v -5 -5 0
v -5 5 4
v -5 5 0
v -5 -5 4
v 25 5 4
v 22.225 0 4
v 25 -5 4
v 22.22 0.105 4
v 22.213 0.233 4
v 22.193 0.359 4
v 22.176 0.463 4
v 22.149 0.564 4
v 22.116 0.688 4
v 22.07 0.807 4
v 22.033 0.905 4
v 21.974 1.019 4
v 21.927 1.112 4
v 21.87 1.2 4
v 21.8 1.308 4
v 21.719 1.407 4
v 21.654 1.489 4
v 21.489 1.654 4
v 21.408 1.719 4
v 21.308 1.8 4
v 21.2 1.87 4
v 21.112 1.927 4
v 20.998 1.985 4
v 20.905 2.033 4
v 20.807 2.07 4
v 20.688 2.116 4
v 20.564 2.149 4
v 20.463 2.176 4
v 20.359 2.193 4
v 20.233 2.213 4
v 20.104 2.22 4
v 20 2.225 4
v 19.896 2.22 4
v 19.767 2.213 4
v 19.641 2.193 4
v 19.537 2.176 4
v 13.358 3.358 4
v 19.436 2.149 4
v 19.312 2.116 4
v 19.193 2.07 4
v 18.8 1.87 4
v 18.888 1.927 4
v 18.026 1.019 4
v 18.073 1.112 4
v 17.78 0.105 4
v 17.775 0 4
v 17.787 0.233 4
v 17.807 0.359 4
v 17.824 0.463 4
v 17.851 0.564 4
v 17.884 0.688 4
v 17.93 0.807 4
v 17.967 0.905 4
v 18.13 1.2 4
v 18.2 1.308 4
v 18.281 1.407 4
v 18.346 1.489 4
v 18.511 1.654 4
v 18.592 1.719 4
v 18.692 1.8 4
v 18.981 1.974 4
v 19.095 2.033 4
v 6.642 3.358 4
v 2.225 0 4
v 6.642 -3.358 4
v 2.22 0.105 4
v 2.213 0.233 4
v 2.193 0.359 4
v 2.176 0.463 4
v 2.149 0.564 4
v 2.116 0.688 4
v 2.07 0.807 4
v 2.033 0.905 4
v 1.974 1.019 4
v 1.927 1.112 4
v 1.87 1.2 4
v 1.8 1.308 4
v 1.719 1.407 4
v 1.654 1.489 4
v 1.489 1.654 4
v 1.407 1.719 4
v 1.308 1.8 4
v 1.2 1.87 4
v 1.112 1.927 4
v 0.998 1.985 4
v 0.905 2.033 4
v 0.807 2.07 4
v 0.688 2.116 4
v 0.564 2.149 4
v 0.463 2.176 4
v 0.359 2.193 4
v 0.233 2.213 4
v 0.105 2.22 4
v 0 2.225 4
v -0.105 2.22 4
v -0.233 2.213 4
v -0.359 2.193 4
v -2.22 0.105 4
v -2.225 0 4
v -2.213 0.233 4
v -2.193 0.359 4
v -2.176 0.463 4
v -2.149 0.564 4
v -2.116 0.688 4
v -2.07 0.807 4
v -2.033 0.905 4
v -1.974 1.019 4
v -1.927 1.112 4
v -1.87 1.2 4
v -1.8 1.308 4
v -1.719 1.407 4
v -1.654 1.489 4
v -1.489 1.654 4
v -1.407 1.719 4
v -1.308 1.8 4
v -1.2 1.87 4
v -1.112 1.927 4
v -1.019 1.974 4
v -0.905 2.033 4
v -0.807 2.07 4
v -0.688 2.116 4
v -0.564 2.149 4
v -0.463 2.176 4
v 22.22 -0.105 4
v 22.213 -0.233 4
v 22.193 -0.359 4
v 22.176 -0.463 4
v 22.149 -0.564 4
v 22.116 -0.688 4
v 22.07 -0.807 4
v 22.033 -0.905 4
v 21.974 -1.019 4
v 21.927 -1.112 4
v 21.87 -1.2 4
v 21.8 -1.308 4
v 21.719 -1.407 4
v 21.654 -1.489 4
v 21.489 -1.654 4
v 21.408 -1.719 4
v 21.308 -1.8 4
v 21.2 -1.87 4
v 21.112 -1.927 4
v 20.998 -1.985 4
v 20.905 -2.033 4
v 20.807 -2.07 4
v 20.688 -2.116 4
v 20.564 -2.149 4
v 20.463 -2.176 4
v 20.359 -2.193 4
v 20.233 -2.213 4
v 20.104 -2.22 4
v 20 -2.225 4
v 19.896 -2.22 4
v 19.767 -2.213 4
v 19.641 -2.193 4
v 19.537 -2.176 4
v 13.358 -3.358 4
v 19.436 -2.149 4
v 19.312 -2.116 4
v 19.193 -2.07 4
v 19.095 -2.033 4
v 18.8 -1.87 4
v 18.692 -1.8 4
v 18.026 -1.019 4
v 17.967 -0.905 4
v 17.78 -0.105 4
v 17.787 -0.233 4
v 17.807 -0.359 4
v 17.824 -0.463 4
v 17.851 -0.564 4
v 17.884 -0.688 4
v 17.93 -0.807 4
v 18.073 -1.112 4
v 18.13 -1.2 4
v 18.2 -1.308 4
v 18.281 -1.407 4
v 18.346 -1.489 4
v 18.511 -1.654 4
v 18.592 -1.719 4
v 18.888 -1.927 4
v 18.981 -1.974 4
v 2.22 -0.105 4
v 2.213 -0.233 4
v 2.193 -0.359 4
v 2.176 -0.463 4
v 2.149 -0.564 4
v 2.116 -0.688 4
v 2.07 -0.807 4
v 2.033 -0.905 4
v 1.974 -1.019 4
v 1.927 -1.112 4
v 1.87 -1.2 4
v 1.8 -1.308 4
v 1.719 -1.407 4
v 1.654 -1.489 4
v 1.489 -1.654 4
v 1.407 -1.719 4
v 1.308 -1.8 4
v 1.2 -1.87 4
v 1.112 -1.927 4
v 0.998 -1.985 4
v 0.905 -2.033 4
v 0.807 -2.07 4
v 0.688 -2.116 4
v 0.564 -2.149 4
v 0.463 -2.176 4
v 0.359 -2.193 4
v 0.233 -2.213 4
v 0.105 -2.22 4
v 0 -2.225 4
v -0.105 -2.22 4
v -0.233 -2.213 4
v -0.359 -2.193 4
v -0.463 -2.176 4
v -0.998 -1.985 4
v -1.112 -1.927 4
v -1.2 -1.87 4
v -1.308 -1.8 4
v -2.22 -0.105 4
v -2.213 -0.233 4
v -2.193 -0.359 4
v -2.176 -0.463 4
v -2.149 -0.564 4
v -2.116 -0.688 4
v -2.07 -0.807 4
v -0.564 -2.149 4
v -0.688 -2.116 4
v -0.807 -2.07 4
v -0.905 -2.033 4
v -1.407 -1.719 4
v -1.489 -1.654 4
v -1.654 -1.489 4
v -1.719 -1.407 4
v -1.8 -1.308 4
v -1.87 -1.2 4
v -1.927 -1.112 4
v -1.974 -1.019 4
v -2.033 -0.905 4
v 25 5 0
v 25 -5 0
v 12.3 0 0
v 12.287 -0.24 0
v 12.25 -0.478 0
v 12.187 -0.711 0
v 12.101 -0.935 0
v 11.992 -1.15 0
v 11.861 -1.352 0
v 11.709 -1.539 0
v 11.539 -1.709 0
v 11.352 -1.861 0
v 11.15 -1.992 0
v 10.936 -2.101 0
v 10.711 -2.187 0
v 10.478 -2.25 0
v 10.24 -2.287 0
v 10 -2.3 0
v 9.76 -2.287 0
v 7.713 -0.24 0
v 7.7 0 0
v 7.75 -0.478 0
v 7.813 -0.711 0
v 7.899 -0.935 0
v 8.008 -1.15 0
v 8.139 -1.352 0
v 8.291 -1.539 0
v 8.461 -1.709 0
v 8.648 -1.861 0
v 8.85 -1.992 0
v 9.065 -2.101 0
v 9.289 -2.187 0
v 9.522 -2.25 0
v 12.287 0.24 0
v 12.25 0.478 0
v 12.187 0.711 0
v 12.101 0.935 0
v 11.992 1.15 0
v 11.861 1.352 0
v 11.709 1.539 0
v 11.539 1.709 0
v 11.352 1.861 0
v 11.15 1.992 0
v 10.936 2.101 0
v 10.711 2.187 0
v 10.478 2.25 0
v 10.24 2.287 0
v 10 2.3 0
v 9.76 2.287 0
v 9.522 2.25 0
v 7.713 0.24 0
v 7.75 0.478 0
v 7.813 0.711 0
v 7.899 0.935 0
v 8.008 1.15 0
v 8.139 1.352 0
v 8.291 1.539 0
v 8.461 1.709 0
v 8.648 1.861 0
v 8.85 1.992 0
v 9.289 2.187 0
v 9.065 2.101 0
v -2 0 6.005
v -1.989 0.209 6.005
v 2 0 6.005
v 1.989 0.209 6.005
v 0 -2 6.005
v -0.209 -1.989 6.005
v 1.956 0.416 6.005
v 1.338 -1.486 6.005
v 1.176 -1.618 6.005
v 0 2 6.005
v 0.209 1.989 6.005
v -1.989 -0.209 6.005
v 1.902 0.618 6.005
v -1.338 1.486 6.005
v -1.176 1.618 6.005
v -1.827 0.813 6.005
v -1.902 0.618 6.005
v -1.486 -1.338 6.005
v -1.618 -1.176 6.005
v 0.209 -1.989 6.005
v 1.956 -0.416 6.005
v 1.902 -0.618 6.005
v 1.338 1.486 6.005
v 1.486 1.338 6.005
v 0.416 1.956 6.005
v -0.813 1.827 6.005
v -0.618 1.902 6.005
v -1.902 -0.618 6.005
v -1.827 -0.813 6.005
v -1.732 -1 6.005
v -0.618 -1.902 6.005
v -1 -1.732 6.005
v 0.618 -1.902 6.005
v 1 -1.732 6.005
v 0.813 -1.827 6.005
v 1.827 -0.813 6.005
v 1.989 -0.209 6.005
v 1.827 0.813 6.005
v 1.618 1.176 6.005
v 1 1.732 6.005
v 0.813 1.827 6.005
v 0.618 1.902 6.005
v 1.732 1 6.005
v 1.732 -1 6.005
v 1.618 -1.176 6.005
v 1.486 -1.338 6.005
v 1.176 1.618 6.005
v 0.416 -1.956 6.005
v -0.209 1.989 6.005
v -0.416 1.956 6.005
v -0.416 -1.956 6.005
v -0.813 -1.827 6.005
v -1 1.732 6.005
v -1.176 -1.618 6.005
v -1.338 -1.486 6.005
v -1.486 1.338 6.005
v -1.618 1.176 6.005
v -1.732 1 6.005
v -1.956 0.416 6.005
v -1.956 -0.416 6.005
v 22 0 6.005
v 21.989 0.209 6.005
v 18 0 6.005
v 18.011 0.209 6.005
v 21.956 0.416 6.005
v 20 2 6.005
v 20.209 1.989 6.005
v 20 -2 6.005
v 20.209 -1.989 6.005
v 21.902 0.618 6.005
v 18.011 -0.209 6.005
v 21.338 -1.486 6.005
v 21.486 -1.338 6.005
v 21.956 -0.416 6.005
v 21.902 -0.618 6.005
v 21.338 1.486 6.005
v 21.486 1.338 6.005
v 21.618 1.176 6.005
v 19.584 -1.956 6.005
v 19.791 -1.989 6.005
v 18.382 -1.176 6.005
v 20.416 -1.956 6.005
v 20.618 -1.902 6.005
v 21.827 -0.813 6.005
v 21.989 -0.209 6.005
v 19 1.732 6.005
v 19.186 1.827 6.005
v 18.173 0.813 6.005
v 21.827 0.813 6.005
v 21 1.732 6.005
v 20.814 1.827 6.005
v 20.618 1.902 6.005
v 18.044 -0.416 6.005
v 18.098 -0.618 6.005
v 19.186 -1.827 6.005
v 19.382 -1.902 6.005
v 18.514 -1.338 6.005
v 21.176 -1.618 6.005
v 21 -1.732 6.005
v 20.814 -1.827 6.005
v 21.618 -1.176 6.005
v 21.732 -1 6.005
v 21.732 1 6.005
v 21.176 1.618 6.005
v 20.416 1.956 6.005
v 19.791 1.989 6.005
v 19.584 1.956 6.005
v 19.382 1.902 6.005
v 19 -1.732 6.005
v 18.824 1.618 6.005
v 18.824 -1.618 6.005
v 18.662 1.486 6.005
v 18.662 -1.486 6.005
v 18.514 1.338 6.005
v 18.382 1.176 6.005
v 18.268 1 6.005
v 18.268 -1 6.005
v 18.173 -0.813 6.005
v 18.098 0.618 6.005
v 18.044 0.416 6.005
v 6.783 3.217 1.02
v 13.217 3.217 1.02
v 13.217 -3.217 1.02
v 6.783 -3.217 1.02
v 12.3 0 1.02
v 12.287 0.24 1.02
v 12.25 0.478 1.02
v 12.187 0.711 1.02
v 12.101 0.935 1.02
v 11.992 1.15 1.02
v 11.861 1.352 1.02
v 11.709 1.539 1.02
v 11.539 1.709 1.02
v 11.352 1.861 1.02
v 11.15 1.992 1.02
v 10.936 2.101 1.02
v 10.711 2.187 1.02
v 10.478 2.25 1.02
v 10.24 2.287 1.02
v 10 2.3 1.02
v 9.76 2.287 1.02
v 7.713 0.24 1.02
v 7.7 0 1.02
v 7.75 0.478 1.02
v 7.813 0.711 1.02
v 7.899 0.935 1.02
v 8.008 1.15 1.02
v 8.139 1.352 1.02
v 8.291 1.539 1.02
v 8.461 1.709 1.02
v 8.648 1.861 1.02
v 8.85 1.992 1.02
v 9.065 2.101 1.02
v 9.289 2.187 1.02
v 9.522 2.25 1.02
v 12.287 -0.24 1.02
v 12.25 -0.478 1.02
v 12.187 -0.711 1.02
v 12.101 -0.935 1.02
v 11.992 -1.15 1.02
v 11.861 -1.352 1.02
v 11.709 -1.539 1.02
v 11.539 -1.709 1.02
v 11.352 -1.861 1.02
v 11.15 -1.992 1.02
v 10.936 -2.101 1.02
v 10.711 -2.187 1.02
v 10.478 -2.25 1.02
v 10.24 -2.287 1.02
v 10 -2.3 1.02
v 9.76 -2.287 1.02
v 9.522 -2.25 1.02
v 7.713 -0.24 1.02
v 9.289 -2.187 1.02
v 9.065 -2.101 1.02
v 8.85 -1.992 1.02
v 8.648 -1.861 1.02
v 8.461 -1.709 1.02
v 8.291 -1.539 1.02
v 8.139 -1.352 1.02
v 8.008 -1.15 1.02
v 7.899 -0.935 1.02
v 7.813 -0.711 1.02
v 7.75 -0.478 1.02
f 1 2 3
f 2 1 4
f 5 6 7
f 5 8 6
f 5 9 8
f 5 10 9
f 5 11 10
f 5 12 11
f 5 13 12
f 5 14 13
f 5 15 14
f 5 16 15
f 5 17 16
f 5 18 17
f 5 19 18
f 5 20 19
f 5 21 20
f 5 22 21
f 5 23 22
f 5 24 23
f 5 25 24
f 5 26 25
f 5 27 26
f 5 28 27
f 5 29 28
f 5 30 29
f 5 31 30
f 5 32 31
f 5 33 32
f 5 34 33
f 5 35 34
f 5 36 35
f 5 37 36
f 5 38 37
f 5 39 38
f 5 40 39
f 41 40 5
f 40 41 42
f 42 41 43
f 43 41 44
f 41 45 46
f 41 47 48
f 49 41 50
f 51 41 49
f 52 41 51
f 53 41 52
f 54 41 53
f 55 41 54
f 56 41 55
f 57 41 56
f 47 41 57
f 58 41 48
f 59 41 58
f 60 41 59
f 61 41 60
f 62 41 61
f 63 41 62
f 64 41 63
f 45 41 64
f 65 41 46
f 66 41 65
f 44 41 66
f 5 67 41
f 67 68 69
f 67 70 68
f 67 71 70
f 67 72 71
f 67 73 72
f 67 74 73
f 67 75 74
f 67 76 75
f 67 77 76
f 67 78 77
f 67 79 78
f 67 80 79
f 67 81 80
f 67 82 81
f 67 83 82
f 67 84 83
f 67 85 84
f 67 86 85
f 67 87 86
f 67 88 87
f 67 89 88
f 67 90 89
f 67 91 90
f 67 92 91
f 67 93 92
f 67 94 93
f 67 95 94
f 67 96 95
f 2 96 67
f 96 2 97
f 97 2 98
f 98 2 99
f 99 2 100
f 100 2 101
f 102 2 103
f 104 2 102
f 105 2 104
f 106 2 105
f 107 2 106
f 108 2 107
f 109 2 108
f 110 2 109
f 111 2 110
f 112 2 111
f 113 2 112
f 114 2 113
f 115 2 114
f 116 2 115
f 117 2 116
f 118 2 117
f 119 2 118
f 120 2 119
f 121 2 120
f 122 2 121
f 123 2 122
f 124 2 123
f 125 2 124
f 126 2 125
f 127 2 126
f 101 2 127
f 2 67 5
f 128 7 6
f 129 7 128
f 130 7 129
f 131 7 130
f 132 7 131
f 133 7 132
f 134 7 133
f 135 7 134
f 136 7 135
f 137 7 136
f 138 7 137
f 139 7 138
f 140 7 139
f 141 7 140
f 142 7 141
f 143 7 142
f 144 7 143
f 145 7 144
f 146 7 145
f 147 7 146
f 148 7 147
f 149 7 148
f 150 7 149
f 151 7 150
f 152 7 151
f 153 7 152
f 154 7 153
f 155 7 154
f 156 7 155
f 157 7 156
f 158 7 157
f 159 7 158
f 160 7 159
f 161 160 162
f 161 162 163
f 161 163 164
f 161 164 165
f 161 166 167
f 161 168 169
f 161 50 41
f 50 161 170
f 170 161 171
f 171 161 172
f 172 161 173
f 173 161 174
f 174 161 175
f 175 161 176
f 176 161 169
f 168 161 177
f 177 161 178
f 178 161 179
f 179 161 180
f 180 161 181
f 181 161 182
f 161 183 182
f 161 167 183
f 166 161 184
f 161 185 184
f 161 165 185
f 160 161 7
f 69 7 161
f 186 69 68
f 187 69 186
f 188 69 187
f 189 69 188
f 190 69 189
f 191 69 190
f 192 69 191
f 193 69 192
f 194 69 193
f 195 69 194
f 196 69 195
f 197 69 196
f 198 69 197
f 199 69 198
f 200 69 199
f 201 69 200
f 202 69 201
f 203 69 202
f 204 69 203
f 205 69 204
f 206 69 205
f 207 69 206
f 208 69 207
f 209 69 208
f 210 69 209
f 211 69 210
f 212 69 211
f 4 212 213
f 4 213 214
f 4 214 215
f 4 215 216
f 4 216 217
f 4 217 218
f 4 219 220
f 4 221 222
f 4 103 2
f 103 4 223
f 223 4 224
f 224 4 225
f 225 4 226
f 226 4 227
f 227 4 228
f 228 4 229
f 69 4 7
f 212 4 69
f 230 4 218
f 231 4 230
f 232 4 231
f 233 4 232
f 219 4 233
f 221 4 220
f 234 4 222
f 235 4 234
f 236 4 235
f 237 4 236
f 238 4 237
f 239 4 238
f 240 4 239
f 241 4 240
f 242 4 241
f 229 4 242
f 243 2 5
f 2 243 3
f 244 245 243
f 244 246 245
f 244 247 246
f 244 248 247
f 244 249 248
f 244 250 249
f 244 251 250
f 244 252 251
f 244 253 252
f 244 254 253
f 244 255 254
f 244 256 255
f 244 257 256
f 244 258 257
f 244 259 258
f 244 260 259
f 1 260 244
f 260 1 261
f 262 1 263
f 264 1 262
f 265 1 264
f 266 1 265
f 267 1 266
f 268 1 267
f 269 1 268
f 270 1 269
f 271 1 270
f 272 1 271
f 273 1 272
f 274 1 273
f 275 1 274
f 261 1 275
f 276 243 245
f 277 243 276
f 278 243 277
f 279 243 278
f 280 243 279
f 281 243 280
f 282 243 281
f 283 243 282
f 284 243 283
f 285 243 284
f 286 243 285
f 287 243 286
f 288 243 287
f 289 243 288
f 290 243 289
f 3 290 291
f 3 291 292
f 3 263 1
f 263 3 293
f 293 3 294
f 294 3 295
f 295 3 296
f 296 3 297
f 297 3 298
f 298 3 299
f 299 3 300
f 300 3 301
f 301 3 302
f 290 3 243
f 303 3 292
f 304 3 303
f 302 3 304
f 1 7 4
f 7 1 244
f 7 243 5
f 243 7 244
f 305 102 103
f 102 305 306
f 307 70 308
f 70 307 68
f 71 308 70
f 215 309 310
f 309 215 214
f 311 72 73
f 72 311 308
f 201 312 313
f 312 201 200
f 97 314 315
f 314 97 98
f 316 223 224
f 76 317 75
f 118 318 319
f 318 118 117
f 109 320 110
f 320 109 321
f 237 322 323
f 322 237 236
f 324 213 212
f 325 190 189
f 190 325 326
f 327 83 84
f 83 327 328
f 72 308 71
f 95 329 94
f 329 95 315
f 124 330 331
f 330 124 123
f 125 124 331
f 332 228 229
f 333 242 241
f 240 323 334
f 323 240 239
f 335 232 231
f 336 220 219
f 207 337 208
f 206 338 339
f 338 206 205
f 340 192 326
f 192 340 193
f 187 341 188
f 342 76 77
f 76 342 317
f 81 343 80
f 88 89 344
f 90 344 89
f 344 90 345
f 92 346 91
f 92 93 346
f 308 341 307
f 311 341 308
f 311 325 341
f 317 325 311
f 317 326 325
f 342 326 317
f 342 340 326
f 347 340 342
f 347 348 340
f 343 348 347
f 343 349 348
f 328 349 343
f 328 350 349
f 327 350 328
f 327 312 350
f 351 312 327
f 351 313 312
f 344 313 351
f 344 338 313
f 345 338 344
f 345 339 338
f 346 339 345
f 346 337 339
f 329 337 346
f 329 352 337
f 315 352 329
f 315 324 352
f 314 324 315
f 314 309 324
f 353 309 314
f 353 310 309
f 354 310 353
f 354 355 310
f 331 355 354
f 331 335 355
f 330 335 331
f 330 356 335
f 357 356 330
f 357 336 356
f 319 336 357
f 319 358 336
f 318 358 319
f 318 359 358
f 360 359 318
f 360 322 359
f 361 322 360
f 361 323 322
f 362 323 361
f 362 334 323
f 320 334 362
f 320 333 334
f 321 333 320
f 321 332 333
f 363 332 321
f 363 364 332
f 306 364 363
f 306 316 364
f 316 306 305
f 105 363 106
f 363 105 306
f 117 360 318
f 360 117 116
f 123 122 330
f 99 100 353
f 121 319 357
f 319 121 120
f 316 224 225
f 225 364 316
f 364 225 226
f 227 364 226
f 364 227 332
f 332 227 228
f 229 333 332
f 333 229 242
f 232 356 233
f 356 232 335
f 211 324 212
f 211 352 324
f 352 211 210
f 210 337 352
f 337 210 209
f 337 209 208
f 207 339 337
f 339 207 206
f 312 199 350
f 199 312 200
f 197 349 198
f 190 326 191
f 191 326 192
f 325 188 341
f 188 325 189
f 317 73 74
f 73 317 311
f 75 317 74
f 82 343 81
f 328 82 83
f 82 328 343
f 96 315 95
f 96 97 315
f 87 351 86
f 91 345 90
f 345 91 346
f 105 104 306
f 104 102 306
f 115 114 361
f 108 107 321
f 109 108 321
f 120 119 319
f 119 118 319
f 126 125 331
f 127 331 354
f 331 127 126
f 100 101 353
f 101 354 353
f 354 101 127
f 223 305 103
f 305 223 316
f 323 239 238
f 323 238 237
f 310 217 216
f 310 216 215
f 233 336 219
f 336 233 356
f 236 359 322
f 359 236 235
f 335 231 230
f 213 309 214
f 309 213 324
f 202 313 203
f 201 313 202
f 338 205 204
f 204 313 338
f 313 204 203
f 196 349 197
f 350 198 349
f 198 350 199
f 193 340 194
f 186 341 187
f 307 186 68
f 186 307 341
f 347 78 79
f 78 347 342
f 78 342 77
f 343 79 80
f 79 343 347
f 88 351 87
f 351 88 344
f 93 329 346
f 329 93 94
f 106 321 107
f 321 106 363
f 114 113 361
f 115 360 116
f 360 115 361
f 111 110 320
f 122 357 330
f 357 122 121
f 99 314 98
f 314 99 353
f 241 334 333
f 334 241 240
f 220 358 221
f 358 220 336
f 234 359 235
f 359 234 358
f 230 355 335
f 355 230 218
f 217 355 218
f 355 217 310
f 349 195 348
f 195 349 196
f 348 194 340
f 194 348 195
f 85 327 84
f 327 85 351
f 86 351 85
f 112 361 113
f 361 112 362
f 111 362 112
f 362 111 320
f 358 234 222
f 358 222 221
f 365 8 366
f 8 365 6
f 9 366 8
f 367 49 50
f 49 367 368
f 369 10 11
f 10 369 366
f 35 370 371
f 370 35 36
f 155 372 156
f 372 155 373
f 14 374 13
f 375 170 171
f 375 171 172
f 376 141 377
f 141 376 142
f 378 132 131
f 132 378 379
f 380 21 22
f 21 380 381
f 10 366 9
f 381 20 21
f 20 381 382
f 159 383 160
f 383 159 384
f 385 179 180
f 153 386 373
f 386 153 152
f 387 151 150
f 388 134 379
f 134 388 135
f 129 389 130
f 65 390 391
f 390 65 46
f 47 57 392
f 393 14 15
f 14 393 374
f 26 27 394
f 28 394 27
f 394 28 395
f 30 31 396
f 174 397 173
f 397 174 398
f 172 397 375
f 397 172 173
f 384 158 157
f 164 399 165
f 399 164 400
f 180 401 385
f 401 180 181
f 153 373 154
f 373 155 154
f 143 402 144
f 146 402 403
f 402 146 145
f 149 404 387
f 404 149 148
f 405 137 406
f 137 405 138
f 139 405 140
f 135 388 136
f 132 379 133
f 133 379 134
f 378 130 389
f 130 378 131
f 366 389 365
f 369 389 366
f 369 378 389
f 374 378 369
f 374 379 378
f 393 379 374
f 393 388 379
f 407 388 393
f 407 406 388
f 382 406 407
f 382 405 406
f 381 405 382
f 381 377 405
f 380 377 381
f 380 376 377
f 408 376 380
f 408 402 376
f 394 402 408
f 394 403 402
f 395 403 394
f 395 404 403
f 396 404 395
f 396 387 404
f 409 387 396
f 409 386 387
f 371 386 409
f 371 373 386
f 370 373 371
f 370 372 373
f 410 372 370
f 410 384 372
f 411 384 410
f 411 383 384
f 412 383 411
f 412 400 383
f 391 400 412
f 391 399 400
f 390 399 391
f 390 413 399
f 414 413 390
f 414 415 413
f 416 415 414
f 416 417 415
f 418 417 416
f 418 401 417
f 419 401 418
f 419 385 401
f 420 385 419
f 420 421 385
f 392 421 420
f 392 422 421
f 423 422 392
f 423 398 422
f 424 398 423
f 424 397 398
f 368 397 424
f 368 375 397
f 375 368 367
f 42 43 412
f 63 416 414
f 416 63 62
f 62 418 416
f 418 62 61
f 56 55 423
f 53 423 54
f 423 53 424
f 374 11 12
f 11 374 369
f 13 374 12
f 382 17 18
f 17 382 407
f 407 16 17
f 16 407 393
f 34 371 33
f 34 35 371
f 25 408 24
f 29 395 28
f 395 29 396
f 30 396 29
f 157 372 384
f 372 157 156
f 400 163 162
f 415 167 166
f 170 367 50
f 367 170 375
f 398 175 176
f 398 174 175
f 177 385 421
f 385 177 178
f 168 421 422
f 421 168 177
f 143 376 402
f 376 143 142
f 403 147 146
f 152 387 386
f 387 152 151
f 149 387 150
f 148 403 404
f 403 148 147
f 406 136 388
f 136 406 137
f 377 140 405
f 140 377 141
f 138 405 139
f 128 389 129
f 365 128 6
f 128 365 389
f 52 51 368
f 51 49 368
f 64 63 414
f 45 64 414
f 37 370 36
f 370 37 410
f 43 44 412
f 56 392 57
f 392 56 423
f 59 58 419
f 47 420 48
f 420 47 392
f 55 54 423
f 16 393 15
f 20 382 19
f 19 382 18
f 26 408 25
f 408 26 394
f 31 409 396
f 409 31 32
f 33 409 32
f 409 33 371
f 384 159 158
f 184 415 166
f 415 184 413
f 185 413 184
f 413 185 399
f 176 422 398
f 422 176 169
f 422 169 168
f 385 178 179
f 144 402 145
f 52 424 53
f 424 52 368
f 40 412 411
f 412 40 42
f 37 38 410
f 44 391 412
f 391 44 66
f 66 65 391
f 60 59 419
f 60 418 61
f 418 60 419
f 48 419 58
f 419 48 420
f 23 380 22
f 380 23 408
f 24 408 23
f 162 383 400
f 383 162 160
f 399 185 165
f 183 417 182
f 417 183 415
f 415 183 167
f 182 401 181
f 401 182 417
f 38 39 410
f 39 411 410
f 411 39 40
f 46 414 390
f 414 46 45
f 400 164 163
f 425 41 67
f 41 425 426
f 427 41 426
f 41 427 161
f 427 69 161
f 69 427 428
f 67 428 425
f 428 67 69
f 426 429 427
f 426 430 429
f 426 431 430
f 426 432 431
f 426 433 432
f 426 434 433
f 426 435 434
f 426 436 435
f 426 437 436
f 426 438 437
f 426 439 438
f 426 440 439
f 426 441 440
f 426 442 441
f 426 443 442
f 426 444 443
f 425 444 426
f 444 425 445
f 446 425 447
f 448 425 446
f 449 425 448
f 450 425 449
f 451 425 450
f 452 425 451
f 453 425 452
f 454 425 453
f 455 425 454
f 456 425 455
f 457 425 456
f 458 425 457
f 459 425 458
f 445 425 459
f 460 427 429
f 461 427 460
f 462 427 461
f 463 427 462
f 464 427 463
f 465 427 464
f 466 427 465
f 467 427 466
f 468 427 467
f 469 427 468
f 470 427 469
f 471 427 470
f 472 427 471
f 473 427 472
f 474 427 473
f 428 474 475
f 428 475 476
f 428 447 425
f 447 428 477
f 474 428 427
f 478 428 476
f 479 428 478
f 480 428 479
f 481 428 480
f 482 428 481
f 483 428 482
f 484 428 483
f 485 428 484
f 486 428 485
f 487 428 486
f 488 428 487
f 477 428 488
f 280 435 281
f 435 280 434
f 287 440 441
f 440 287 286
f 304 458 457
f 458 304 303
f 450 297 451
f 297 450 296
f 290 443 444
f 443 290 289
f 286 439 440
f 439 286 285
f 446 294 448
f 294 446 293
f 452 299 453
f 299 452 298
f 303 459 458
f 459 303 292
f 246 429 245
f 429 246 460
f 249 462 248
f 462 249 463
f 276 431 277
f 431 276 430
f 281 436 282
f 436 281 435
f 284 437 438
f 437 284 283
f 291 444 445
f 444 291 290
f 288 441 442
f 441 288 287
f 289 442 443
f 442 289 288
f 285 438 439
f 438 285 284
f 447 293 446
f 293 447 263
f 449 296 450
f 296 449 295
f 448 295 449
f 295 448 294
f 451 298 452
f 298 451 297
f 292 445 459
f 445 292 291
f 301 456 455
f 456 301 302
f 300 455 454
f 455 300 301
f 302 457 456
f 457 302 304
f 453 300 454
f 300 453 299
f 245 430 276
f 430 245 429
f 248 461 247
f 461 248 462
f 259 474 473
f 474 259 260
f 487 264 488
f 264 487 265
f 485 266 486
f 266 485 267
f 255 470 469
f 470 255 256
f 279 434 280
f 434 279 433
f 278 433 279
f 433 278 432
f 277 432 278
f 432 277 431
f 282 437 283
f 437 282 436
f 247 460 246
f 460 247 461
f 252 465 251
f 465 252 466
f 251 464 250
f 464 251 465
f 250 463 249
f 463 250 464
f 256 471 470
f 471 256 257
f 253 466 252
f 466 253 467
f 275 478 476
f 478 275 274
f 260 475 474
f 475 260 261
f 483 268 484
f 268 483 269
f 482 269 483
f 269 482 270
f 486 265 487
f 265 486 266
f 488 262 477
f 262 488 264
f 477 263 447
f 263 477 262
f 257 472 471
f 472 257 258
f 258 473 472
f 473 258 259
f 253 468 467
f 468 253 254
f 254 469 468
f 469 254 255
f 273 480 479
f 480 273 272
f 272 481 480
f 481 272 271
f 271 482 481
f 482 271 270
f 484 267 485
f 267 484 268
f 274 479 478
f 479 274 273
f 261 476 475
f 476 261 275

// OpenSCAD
// file: lib/electric.scad
module contact_node()
{
    union(){
        node(10);
        difference(){
            translate([0,0,-5]) cube([10,10,6], center=true);
            union(){
                #translate([0,0,-8.5]) cylinder(r=3.5, h=7, $fn=32);
            }
        }
    }
}

module contact_node_cross_section(){
    intersection(){
        contact_node(10);
        translate([-20,0,0]) cube([40,40,40], center=true);
    }
}

module electric_board(count_x, count_y){
     for (i = [0:1:(count_x-1)] )
     for (j = [0:1:(count_y-1)] )
     {
         translate([i*10,j*10,0])contact_node(width);
     }
}
// file: lib/rectangular_bar.scad
include<settings.scad>
include<node.scad>

module rectangular_bar(count_x, width){
     for (i = [0:1:(count_x-1)] )
     {
         translate([0,i*width,0])node(width);
     }
}

module rectangular_bar_alternating11_0(count_x, width){
     for (i = [0:1:(count_x-1)] )
     {
         if (i%2) mirror([0,0,1]) translate([0,i*width,-thickness_total])node(width);
         else  translate([0,i*width,0])node(width);
     }
}

module rectangular_bar_alternating11_1(count_x, width){
    for (i = [0:1:(count_x-1)] )
    {
        if (i%2) translate([0,i*width,0])node(width);
        else  mirror([0,0,1]) translate([0,i*width,-thickness_total])node(width);
    }
}
// file: lib/rectangular_plate.scad
include<settings.scad>
include<node.scad>

module rectangular_plate(count_x, count_y, width){
     for (i = [0:1:(count_x-1)] )
     for (j = [0:1:(count_y-1)] )
     {
         translate([i*width,j*width,0])node(width);
     }
}

module rectangular_plate_plus(count_x, count_y, width){
     for (i = [0:1:(count_x-1)] )
     for (j = [0:1:(count_y-1)] )
     {
         translate([i*width,j*width,0])node_plus(width);
     }
}

module rectangular_plate_minus(count_x, count_y, width){
     for (i = [0:1:(count_x-1)] )
     for (j = [0:1:(count_y-1)] )
     {
         translate([i*width,j*width,0])node_minus(width);
     }
}
// file: lib/bracket.scad
include<settings.scad>
include<rectangular_plate.scad>
use<node.scad>

module bracket1(count_x, count_y, count_z, width)
{
    difference(){
    
    union(){
        rectangular_plate_plus(count_x-2, count_y, width);
        translate([-width,0,0])rotate([0,0,90])node_corner90(width);
        translate([width*(count_x-2),0,0])rotate([0,0,90])mirror([0,1,0])node_corner90(width);

        translate([-width*(count_x-2+count_z-2),0,0])rectangular_plate_plus(count_z-1, count_y, width);
        translate([count_x*width,0,0])rectangular_plate_plus(count_z-1, count_y, width);
    }
    
    union(){
        rectangular_plate_minus(count_x-2, count_y, width);
        translate([-(count_x-2+count_z-2)*width, 0, 0])  rectangular_plate_minus(count_z-1, count_y, width);
        translate([(count_x)*width, 0, 0])  rectangular_plate_minus(count_z-1, count_y, width);
    }
    
    }
}

module bracket2(count_x, count_y, count_z, width)
{
    difference(){
    
    union(){
        translate([0,0,thickness_total]) mirror([0,0,1]) rectangular_plate_plus(count_x-2, count_y, width);
        translate([-width,0,0])rotate([0,0,90])node_corner90(width);
        translate([width*(count_x-2),0,0])rotate([0,0,90])mirror([0,1,0])node_corner90(width);

        translate([-width*(count_x-2+count_z-2),0,0])rectangular_plate_plus(count_z-1, count_y, width);
        translate([count_x*width,0,0])rectangular_plate_plus(count_z-1, count_y, width);
    }
    
    union(){
        translate([0,0,thickness_total]) mirror([0,0,1])rectangular_plate_minus(count_x-2, count_y, width);
        translate([-(count_x-2+count_z-2)*width, 0, 0])  rectangular_plate_minus(count_z-1, count_y, width);
        translate([(count_x)*width, 0, 0])  rectangular_plate_minus(count_z-1, count_y, width);
    }
    
    }
}

module bracket3(count_x, count_y, count_z, width)
{
    difference(){

    union(){
        translate([0,0,thickness_total])mirror([0,0,1])rectangular_plate_plus(count_x, count_y, width);
        translate([(count_x-0.5)*width-thickness_total, 0, 0.5*width]) rotate([0,-90,0]) mirror([0,0,1])rectangular_plate_plus(count_z, count_y, width);
        translate([-0.5*width+thickness_total, 0, (count_z-0.5)*width]) rotate([0,90,0]) mirror([0,0,1])rectangular_plate_plus(count_z, count_y, width);
    }

    union(){
        translate([width,0,thickness_total])mirror([0,0,1])rectangular_plate_minus(count_x-2, count_y, width);
        rectangular_plate_minus(1, count_y, width);
        translate([width*(count_x-1),0,0])rectangular_plate_minus(1, count_y, width);

        translate([(count_x-0.5)*width, 0, 0.5*width]) rotate([0,-90,0]) rectangular_plate_minus(1, count_y, width);  
        translate([(count_x-0.5)*width-thickness_total, 0, 1.5*width]) rotate([0,-90,0]) mirror([0,0,1])rectangular_plate_minus(count_z-1, count_y, width);

        translate([-0.5*width, 0, 0.5*width]) rotate([0,90,0]) rectangular_plate_minus(1, count_y, width);
        translate([-0.5*width+thickness_total, 0, (count_z-0.5)*width]) rotate([0,90,0]) mirror([0,0,1])rectangular_plate_minus(count_z-1, count_y, width);
    }
    }
}

module bracket4(count_x, count_y, count_z, width)
{
    difference(){

    union(){
        rectangular_plate_plus(count_x, count_y, width);
        translate([(count_x-0.5)*width-thickness_total, 0, 0.5*width]) rotate([0,-90,0]) mirror([0,0,1])rectangular_plate_plus(count_z, count_y, width);
        translate([-0.5*width+thickness_total, 0, (count_z-0.5)*width]) rotate([0,90,0]) mirror([0,0,1])rectangular_plate_plus(count_z, count_y, width);
    }
    union(){
        rectangular_plate_minus(count_x, count_y, width);
        //translate([(count_x-0.5)*width-thickness_total, 0, 0.5*width]) rotate([0,-90,0]) mirror([0,0,1])rectangular_plate_minus(count_z, count_y, width);
        //translate([-0.5*width+thickness_total, 0, (count_z-0.5)*width]) rotate([0,90,0]) mirror([0,0,1])rectangular_plate_minus(count_z, count_y, width);
        translate([(count_x-0.5)*width, 0, 0.5*width]) rotate([0,-90,0]) rectangular_plate_minus(1, count_y, width);  
        translate([(count_x-0.5)*width-thickness_total, 0, 1.5*width]) rotate([0,-90,0]) mirror([0,0,1])rectangular_plate_minus(count_z-1, count_y, width);

        translate([-0.5*width, 0, 0.5*width]) rotate([0,90,0]) rectangular_plate_minus(1, count_y, width);
        translate([-0.5*width+thickness_total, 0, (count_z-0.5)*width]) rotate([0,90,0]) mirror([0,0,1])rectangular_plate_minus(count_z-1, count_y, width);
    }
    }
}

//bracket1(5,1,2,10);
// file: lib/ring.scad
include<settings.scad>
include<horseshoe.scad>

/*
ring10_20: 10 mm размер элемента
           20 элементов по периметру кольца
*/
module ring_10_20()
{
    horseshoe(10, 31.85, 20);    
}

module ring_10_18()
{
    horseshoe(10, 28.65, 18);    
}

module ring_10_16()
{
    horseshoe(10, 25.45, 16);    
}

module ring_10_14()
{
    horseshoe(10, 22.25, 14);    
}

module ring_10_12()
{
    horseshoe(10, 19.05, 12);    
}

module ring_10_10()
{
    horseshoe(10, 15.85, 10);    
}

module ring_10_8()
{
    horseshoe(10, 12.65, 8);    
}

module ring_10_6()
{
    horseshoe(10, 9.45, 6);    
}

module ring_10_4()
{
    horseshoe(10, 6.37, 4);    
}

module ring_10_3()
{
    horseshoe(10, 4.78, 3);    
}

module ring_10_2()
{
    horseshoe(10, 3.185, 2);    
}
// file: lib/horseshoe.scad
include<settings.scad>

module horseshoe(width, r_mm, n_links)
{
    step_n = 3.14 * r_mm / 10;
    step = 3.14 / step_n;
    for (j = [0:1:(n_links-1)])
    {
        alpha_deg = j * step * 180 / 3.14;
        rotate([0,0,alpha_deg]) translate([0,r_mm,width*i]) rotate([0,0,0])
        {
            node_corner90(width);
            translate([0,20,0])node(width);
        }
    }
}
// file: lib/node.scad
include<settings.scad>

// http://rcpp-kvalitet.ru/catalog/
// http://tdm-neva.ru/nuts/din-562-nut.htm
// http://www.ebay.com/itm/172788788738
//у винтов М4
//внешний диаметр шляпки 6.5..7 мм
//внешний диаметр резьбы 3.8 мм
module m4_square_nut_shell(){
    translate([0,0,1.1])cube([6.65,6.65,1.2], center=true);
}

module m4_square_nut_shell_inflated(){
    thickness = thickness_total - thickness_bottom;
    thickness1 = thickness-thickness_top;
    //#translate([0,0,0.01+thickness_bottom+thickness/2]) cube ([6.45,6.45,thickness], center=true);
    translate([0,0,thickness_bottom+0.01]) rotate([0,0,45]) cylinder(h=thickness1, r1=4.55, r2=4.75, $fn=4);
}

module m4_square_nut(){
    difference(){
        m4_square_nut_shell();
        cylinder(r=2, h=3, center=true);
    }
}

module node_plus(width){
        translate([0,0,thickness_total/2])
            cube([width, width, thickness_total], center=true);
}

module node_minus(width){
    translate([0,0,0.01])
    union(){
        m4_square_nut_shell_inflated();
        //translate([0,0,1]) m4_square_nut_shell();
        translate([0,0,thickness_total/2-0.05])cylinder(r=2.3, h=thickness_total+0.01, center=true, $fn=60);
    }
}

/* элемент, из которого строятся все детали */
module node(width) {
    difference(){
        node_plus(width);
        node_minus(width);
    }
}

/* node в разрезе */
module node_section(){
    intersection(){
        node(10);
        translate([-20,0,0]) cube([40,40,40], center=true);
    }
}

module node_lock90(width)
{
    angle=90;
    difference(){
        node_plus(width);
        union(){
            
            translate([width/2+0.05,width/2-thickness_total,0.3]) rotate([0,-90,0]) cube([20,15,width/4+0.05]);
            translate([0,width/2-thickness_total,0.3]) rotate([0,-90,0]) cube([20,15,width/4+0.05]);

            translate([width/4+0.5,width/2-0.3,0.3]) rotate([0,-90,0]) cube([20,15,20]);

            translate([-width/2-1,width/2-2,thickness_total/2])rotate([0,90,0]) cylinder(r=1.75/2, h=width+2, $fn=60);
        }
    }
}

module node_corner90(width)
{
    union()
    {
        node_lock90(width);
        translate([0,width,0]) rotate([0,0,180]) node_lock90(width);
    }
}
// file: lib/wedge.scad
module wedge_180(h, r, d)
{
	rotate(d) difference()
	{
		rotate(180-d) difference()
		{
			cylinder(h = h, r = r);
			translate([-(r+1), 0, -1]) cube([r*2+2, r+1, h+2]);
		}
		translate([-(r+1), 0, -1]) cube([r*2+2, r+1, h+2]);
	}
}

module wedge(h, r, d)
{
	if(d <= 180)
		wedge_180(h, r, d);
	else
		rotate(d) difference()
		{
			cylinder(h = h, r = r);
			translate([0, 0, -1]) wedge_180(h+2, r+1, 360-d);
		}
}
// file: lib/settings.scad
thickness_total = 4;
thickness_bottom = 1;
thickness_top = 0;
// main file
include<lib/settings.scad>
include<lib/wedge.scad>
include<lib/node.scad>
include<lib/horseshoe.scad>
include<lib/ring.scad>
include<lib/bracket.scad>
include<lib/rectangular_plate.scad>
include<lib/rectangular_bar.scad>
include<lib/electric.scad>

module square_nut_holder(width)
{
    difference(){
        union(){
            rectangular_plate_plus(3, 1, 10);
            translate([0,0,thickness_total])cylinder(r1=2.45, r2=2, h=thickness_total+0.01, center=true, $fn=60);
            translate([width*2,0,thickness_total])cylinder(r1=2.45, r2=2, h=thickness_total+0.01, center=true, $fn=60);
        }
        translate([width,0,0])rectangular_plate_minus(1,1,10);

    }
}

square_nut_holder(10);
